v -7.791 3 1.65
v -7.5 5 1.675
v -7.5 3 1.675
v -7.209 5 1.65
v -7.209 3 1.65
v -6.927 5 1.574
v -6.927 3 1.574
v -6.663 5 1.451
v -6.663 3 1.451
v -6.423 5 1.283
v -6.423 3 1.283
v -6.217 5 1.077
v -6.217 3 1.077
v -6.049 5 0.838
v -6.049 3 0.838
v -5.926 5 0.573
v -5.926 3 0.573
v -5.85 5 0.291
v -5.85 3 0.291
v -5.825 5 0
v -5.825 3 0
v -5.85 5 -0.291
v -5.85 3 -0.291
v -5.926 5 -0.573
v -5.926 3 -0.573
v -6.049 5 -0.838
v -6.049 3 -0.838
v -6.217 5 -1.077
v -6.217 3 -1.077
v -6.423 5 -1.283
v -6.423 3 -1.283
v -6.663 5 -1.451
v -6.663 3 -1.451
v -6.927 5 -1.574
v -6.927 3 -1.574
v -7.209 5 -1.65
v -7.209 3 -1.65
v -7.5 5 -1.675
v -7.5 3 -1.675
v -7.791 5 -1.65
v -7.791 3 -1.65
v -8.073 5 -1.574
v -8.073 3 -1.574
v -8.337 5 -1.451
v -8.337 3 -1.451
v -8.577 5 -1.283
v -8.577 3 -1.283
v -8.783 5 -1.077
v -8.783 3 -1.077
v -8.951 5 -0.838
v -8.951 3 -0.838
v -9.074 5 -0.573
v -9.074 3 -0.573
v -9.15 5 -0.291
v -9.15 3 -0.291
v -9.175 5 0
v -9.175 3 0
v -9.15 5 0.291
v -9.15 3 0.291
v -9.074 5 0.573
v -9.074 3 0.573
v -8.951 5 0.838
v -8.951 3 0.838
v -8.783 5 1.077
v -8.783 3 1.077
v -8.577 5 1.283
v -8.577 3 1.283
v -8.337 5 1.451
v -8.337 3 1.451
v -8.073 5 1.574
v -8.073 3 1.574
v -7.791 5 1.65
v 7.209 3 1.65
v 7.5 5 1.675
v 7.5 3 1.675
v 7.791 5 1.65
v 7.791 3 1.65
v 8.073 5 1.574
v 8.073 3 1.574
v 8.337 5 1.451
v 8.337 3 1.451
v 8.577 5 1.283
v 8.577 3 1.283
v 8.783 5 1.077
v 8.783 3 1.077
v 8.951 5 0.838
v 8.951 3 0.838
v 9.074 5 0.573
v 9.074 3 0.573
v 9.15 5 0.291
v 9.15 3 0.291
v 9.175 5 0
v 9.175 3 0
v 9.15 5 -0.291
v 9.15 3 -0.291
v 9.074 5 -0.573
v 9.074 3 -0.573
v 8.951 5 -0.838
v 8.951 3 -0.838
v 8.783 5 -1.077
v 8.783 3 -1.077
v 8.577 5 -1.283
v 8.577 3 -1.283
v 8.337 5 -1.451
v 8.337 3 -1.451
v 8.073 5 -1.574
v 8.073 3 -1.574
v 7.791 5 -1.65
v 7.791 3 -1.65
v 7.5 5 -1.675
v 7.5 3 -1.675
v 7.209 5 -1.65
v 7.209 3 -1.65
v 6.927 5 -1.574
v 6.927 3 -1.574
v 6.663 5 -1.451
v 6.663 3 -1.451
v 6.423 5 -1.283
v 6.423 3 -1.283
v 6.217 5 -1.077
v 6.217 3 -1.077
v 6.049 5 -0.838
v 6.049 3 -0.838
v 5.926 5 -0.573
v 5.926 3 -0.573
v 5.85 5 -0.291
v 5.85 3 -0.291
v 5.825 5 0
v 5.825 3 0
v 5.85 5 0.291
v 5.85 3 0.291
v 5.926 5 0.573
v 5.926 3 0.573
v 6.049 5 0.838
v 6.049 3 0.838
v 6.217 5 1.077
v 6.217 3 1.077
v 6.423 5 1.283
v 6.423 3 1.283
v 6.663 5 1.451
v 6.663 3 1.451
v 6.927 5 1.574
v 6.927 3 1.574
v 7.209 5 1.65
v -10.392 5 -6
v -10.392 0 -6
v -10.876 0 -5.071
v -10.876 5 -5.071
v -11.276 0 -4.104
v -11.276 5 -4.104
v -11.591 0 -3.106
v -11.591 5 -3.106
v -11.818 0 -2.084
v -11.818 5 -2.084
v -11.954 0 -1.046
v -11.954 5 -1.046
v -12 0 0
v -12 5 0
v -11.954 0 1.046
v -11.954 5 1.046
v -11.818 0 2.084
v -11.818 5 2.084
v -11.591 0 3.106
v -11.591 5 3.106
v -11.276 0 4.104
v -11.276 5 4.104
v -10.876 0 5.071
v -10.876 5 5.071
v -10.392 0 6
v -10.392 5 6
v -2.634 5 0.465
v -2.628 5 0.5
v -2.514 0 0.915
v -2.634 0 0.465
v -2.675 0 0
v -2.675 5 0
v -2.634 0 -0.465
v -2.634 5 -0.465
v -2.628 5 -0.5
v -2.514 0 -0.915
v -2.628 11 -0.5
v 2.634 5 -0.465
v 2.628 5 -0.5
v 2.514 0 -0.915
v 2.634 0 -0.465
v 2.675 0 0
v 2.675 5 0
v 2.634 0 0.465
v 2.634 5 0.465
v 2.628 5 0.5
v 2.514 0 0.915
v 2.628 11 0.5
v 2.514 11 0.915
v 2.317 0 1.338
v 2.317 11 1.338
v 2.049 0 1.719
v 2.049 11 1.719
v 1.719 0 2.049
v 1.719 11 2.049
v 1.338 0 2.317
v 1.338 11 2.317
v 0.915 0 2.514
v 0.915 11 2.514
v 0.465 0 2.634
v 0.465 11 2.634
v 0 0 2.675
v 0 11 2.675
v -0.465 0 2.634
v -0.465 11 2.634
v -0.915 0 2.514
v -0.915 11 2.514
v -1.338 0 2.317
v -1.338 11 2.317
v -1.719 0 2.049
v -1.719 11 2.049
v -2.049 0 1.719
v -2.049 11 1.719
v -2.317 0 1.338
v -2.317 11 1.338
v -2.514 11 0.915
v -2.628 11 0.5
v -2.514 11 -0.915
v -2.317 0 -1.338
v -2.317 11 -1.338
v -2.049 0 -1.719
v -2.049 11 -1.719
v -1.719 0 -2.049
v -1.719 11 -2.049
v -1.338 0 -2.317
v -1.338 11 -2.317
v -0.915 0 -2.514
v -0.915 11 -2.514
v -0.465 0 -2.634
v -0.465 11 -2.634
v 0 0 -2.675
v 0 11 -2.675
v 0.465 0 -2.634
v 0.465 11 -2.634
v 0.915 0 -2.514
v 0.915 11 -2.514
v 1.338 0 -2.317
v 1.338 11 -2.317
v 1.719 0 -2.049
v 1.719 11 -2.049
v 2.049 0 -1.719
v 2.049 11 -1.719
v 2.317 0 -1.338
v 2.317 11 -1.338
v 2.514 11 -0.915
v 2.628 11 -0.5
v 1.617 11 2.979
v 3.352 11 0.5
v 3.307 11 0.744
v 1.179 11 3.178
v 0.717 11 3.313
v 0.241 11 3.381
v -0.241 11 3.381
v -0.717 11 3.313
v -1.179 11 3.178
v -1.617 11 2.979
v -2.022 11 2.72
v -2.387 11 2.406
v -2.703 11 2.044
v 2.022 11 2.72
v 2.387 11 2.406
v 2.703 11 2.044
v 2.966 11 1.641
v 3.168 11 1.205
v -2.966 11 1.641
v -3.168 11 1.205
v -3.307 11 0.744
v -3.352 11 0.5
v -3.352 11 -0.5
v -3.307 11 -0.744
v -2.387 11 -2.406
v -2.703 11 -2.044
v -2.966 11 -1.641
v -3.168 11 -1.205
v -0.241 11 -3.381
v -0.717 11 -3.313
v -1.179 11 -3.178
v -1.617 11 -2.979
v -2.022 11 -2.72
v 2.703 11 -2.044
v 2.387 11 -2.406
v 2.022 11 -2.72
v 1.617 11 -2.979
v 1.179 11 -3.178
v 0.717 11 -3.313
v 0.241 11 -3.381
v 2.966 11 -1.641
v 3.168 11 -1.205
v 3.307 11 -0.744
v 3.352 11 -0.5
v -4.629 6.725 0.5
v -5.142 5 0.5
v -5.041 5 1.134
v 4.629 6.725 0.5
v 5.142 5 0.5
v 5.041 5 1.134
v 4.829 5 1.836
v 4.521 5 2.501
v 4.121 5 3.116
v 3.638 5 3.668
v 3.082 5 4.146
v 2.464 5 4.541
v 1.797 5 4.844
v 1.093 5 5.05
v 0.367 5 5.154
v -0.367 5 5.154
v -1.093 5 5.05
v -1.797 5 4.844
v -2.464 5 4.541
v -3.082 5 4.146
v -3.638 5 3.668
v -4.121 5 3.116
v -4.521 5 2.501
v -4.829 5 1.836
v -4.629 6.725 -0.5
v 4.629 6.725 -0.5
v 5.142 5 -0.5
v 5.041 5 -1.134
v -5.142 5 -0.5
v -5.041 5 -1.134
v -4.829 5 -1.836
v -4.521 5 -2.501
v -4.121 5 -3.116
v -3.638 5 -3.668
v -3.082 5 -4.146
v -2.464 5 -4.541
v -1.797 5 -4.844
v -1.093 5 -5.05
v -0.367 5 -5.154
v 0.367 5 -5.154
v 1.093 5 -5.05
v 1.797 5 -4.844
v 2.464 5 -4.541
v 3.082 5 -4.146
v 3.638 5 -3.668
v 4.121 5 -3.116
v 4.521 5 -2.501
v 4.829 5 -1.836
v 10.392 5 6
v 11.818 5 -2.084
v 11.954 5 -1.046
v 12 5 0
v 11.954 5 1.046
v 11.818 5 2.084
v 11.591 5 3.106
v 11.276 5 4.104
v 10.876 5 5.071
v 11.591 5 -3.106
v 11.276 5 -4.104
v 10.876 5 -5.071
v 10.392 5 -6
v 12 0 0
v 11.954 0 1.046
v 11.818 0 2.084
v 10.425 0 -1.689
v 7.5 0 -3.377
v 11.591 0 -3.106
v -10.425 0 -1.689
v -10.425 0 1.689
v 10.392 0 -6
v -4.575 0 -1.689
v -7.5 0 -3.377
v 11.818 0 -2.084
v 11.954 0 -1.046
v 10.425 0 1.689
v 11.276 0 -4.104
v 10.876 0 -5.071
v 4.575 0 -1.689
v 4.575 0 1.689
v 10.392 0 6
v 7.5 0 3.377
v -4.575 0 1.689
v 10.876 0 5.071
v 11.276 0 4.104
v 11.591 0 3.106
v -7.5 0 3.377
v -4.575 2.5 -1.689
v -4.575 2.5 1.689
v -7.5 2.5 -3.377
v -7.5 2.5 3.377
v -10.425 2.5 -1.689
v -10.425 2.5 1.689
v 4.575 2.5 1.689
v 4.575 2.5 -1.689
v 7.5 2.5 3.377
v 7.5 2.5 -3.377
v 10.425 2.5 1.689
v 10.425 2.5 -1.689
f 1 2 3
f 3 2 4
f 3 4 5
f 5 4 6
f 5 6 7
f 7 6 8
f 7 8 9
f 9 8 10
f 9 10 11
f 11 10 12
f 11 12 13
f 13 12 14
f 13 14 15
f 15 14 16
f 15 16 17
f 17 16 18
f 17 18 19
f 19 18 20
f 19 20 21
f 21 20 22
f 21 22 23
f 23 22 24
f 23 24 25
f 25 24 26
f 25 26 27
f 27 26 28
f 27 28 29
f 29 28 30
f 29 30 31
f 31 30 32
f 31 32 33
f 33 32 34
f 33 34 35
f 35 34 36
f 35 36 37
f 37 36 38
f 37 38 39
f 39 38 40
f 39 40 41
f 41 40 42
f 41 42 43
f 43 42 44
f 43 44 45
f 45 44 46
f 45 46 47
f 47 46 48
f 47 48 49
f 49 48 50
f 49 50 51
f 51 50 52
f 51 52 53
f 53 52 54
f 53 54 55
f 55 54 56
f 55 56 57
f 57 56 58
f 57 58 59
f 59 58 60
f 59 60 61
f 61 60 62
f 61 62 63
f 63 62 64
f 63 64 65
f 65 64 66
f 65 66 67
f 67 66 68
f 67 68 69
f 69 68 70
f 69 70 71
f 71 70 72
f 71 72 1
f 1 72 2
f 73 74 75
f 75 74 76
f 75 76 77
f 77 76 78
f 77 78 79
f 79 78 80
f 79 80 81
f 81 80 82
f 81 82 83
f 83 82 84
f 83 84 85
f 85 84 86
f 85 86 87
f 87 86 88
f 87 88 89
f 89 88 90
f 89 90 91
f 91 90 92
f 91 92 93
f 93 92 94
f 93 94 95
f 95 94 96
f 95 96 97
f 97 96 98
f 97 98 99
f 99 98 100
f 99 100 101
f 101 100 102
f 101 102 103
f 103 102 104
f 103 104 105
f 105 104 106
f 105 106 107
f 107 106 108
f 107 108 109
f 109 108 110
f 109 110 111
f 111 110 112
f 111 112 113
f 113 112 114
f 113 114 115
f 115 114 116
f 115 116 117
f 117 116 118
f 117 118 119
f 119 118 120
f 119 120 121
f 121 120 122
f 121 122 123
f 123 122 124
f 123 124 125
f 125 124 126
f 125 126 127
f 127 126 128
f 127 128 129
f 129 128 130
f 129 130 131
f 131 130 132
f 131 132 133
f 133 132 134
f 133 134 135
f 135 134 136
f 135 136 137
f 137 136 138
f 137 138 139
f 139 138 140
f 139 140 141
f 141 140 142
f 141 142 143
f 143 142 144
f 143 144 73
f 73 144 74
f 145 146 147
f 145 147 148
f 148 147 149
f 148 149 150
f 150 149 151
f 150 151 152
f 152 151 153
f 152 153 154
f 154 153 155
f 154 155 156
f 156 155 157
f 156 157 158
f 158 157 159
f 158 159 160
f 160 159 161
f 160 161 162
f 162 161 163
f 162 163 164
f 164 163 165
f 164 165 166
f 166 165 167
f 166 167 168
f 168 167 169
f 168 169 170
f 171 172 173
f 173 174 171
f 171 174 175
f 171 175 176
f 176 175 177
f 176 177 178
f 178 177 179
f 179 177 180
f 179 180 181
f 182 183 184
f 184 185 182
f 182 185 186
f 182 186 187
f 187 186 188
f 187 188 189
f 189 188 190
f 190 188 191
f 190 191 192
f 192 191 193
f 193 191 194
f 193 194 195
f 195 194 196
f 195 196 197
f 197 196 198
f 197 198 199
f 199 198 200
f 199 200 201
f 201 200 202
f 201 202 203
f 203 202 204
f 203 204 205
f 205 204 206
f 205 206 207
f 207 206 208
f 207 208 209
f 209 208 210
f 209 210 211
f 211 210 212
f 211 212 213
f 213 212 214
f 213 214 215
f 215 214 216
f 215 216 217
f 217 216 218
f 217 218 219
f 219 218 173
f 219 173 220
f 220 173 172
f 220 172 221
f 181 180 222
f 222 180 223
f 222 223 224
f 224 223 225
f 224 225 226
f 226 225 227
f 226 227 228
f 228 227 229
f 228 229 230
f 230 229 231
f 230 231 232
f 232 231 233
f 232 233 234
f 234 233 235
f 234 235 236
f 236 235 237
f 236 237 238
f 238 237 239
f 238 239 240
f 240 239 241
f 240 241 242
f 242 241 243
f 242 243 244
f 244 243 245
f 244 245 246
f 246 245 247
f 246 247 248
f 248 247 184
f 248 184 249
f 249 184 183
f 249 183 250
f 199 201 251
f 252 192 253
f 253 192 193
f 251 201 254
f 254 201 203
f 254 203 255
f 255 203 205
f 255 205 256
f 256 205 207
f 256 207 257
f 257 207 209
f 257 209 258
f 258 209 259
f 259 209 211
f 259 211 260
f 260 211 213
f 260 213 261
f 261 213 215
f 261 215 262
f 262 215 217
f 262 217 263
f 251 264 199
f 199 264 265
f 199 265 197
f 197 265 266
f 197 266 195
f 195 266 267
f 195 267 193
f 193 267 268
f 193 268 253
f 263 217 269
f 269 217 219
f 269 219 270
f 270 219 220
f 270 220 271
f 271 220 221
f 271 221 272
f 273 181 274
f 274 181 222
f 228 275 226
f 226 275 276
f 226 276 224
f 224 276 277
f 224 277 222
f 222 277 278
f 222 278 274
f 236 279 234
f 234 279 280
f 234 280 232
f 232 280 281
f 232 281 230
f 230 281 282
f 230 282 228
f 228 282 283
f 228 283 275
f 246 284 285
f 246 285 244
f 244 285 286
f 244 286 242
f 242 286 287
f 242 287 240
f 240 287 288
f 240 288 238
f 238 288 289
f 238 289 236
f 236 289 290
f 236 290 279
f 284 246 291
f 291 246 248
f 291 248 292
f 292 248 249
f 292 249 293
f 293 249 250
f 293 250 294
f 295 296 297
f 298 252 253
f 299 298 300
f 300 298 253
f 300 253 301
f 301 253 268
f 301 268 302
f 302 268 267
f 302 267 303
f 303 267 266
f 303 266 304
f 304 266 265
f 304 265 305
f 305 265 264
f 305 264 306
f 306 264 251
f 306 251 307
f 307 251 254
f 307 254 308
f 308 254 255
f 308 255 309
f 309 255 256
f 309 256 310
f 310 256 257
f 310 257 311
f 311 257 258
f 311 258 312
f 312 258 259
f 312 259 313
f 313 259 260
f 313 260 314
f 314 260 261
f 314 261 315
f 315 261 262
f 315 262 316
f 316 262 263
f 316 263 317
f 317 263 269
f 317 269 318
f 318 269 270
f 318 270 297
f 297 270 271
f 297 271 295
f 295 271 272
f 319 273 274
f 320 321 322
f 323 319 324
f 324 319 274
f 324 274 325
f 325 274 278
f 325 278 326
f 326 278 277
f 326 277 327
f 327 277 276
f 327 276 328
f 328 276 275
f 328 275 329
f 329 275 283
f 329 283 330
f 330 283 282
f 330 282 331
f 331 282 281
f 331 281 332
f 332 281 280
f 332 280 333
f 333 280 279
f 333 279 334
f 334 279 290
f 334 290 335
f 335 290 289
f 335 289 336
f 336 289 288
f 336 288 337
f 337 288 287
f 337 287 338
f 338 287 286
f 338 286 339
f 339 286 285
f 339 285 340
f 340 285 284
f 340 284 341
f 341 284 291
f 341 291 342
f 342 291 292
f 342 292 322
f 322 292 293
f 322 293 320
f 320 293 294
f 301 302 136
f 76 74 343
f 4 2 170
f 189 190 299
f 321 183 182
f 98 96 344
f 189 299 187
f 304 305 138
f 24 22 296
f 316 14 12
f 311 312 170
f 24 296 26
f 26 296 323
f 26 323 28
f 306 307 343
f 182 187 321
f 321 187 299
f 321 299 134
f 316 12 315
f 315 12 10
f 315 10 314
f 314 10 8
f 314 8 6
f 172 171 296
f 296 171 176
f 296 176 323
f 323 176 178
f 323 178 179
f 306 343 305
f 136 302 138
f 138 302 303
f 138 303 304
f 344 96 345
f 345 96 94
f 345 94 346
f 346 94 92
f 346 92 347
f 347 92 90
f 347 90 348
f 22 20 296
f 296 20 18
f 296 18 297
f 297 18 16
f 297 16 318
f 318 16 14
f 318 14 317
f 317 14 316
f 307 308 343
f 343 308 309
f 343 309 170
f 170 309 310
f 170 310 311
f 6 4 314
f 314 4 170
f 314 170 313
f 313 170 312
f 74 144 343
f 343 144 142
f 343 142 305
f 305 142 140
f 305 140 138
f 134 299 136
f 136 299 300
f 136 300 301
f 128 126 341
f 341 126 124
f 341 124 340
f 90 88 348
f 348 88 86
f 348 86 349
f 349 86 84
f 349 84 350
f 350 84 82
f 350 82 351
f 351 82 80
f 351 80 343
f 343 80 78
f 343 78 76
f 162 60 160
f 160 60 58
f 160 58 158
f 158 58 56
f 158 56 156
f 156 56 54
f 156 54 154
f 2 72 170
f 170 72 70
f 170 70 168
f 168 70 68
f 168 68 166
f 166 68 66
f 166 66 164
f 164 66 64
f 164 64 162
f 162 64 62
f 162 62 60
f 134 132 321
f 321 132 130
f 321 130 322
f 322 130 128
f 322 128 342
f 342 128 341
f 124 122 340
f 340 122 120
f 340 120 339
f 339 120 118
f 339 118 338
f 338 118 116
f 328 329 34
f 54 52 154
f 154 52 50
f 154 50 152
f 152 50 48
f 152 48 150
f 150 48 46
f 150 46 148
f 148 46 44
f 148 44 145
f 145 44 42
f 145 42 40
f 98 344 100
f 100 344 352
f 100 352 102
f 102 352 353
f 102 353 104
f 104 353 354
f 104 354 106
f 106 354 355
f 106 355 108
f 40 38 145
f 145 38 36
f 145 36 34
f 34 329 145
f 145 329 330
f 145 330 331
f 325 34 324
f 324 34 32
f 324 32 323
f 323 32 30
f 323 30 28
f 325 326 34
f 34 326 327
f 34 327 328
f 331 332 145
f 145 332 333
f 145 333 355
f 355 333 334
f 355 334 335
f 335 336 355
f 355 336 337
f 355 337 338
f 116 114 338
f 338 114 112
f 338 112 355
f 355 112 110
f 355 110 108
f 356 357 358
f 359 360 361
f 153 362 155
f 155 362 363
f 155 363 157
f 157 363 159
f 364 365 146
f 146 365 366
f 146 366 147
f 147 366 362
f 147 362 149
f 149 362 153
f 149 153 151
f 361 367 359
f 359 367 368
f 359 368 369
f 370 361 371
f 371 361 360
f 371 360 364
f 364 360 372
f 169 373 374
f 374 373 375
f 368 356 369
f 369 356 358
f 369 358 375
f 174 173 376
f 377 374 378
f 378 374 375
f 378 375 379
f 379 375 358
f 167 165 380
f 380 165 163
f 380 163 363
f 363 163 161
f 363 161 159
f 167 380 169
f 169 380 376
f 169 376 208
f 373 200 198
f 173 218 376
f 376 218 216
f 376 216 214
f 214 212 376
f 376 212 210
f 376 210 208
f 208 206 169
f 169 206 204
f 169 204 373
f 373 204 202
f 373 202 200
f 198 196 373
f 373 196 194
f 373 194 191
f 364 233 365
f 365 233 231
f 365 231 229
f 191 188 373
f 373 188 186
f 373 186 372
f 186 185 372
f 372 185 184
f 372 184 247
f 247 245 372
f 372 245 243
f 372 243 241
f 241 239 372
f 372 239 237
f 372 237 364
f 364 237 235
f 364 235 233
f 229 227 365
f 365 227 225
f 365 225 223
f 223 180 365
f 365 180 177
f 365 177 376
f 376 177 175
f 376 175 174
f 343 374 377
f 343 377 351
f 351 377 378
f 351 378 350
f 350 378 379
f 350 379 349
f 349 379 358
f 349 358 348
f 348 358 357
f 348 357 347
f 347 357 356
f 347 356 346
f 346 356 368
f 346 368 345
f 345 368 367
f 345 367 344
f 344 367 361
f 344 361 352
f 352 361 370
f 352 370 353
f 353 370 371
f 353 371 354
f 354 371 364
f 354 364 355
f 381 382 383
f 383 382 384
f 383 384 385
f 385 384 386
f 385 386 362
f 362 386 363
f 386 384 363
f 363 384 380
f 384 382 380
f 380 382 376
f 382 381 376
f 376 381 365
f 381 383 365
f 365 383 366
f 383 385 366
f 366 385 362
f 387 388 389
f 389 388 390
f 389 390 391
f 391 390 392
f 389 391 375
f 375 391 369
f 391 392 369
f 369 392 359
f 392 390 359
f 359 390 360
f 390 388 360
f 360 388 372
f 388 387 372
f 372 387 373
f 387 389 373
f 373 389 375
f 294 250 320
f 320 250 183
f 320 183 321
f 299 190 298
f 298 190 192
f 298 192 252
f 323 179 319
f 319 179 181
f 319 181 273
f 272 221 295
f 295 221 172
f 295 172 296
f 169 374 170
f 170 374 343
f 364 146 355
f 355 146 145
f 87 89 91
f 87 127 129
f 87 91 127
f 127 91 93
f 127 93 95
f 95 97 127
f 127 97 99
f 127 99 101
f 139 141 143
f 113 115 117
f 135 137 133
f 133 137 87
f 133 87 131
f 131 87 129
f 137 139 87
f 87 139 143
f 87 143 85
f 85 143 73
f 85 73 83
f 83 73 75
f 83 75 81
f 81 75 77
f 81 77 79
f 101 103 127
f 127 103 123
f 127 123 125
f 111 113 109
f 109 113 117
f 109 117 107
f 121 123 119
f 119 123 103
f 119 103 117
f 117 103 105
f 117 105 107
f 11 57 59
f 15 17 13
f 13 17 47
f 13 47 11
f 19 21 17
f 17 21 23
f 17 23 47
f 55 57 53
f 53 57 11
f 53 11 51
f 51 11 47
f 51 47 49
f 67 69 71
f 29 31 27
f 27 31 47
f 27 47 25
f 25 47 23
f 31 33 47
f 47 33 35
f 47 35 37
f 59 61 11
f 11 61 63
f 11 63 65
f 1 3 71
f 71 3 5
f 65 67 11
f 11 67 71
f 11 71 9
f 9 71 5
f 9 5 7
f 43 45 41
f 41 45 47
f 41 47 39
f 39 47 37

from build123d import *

# Parameters (mm, degrees)
SKETCH1_R           = 12
SKETCH1_R_2         = 2.675
BOSS_EXTRUDE1_DEPTH = 5
SKETCH2_R           = 5.16665
SKETCH2_R_2         = 2.675
BOSS_EXTRUDE2_DEPTH = 6
CHAMFER1_SIZE       = 6
CHAMFER1_SIZE_2     = 1.77728097
SKETCH3_R           = 1.675
CUT_EXTRUDE1_DEPTH  = 6
CUT_EXTRUDE2_DEPTH  = 2.5
SKETCH5_W           = 10.3333
SKETCH5_H           = 1
CUT_EXTRUDE3_DEPTH  = 6
CUT_EXTRUDE4_DEPTH  = 10
BOSS_EXTRUDE3_START = -0.5
SKETCH7_R           = 1.706123363
SKETCH7_R_2         = 1.675
BOSS_EXTRUDE3_DEPTH = 0.5


with BuildPart() as part:
    # Sketch1 → Boss-Extrude1 (new body)
    with BuildSketch(Plane(origin=(0, 0, 0), x_dir=(1, 0, 0), z_dir=(0, 1, 0))):
        with Locations(Location((0, 0, 0), (0, 0, 270))):
            Circle(SKETCH1_R)
        with Locations(Location((0, 0, 0), (0, 0, 270))):
            Circle(SKETCH1_R_2, mode=Mode.SUBTRACT)
    extrude(amount=BOSS_EXTRUDE1_DEPTH)

    # Sketch2 → Boss-Extrude2 (add)
    with BuildSketch(Plane(origin=(0, 5, 0), x_dir=(1, 0, 0), z_dir=(0, 1, 0))):
        with Locations(Location((0, 0, 0), (0, 0, 270))):
            Circle(SKETCH2_R)
        with Locations(Location((0, 0, 0), (0, 0, 270))):
            Circle(SKETCH2_R_2, mode=Mode.SUBTRACT)
    extrude(amount=BOSS_EXTRUDE2_DEPTH)

    # Chamfer1
    # the kernel refuses this chamfer: 6, 1.77728097 mm, written as the material it takes off along each edge
    with BuildSketch(Plane(origin=(0, 11, 0), x_dir=(0, 0, 1), z_dir=(-1, 0, 0))) as chamfer1_piece_1_section:
        Polygon((5.16665, -CHAMFER1_SIZE), (5.16665 - CHAMFER1_SIZE_2, 0), (5.16665, 0), align=None)
    chamfer1_piece_1 = revolve(axis=Axis((0, 11, 0), (0, 1, 0)), mode=Mode.PRIVATE)
    chamfer1_piece_1 = split(chamfer1_piece_1, bisect_by=Plane(origin=(0, 5, -4.298679157), z_dir=(0, 1, 0)), keep=Keep.TOP, mode=Mode.PRIVATE)
    add(chamfer1_piece_1, mode=Mode.SUBTRACT)

    # Sketch3 → Cut-Extrude1 (cut)
    with BuildSketch(Plane(origin=(0, 5, 0), x_dir=(1, 0, 0), z_dir=(0, 1, 0))):
        with Locations(Location((-7.5, 0, 0), (0, 0, 270))):
            Circle(SKETCH3_R)
        with Locations(Location((7.5, 0, 0), (0, 0, 270))):
            Circle(SKETCH3_R)
    extrude(amount=-CUT_EXTRUDE1_DEPTH, mode=Mode.SUBTRACT)

    # Sketch4 → Cut-Extrude2 (cut)
    with BuildSketch(Plane.XZ):
        Polygon((-10.425, -1.688749537), (-7.5, -3.377499075), (-4.575, -1.688749537), (-4.575, 1.688749537), (-7.5, 3.377499075), (-10.425, 1.688749537), align=None)
        Polygon((10.425, 1.688749537), (10.425, -1.688749537), (7.5, -3.377499075), (4.575, -1.688749537), (4.575, 1.688749537), (7.5, 3.377499075), align=None)
    extrude(amount=-CUT_EXTRUDE2_DEPTH, mode=Mode.SUBTRACT)

    # Sketch5 → Cut-Extrude3 (cut)
    with BuildSketch(Plane(origin=(0, 5, 0), x_dir=(1, 0, 0), z_dir=(0, 1, 0))):
        Rectangle(SKETCH5_W, SKETCH5_H)
    extrude(amount=CUT_EXTRUDE3_DEPTH, mode=Mode.SUBTRACT)

    # Sketch6 → Cut-Extrude4 (cut)
    with BuildSketch(Plane.XZ):
        with BuildLine():
            Line((-10.392304845, 6), (10.392304845, 6))
            ThreePointArc((10.392304845, 6), (0, 12), (-10.392304845, 6))
        make_face()
        with BuildLine():
            Line((-10.392304845, -6), (10.392304845, -6))
            ThreePointArc((10.392304845, -6), (0, -12), (-10.392304845, -6))
        make_face()
    extrude(amount=-CUT_EXTRUDE4_DEPTH, mode=Mode.SUBTRACT)

    # Sketch7 → Boss-Extrude3 (add)
    with BuildSketch(Plane.XZ.offset(-2.5).offset(BOSS_EXTRUDE3_START)):
        with Locations((7.5, 0)):
            Circle(SKETCH7_R)
        with Locations(Location((-7.5, 0, 0), (0, 0, 90))):
            Circle(SKETCH7_R_2)
    extrude(amount=BOSS_EXTRUDE3_DEPTH)


solid = part.part
